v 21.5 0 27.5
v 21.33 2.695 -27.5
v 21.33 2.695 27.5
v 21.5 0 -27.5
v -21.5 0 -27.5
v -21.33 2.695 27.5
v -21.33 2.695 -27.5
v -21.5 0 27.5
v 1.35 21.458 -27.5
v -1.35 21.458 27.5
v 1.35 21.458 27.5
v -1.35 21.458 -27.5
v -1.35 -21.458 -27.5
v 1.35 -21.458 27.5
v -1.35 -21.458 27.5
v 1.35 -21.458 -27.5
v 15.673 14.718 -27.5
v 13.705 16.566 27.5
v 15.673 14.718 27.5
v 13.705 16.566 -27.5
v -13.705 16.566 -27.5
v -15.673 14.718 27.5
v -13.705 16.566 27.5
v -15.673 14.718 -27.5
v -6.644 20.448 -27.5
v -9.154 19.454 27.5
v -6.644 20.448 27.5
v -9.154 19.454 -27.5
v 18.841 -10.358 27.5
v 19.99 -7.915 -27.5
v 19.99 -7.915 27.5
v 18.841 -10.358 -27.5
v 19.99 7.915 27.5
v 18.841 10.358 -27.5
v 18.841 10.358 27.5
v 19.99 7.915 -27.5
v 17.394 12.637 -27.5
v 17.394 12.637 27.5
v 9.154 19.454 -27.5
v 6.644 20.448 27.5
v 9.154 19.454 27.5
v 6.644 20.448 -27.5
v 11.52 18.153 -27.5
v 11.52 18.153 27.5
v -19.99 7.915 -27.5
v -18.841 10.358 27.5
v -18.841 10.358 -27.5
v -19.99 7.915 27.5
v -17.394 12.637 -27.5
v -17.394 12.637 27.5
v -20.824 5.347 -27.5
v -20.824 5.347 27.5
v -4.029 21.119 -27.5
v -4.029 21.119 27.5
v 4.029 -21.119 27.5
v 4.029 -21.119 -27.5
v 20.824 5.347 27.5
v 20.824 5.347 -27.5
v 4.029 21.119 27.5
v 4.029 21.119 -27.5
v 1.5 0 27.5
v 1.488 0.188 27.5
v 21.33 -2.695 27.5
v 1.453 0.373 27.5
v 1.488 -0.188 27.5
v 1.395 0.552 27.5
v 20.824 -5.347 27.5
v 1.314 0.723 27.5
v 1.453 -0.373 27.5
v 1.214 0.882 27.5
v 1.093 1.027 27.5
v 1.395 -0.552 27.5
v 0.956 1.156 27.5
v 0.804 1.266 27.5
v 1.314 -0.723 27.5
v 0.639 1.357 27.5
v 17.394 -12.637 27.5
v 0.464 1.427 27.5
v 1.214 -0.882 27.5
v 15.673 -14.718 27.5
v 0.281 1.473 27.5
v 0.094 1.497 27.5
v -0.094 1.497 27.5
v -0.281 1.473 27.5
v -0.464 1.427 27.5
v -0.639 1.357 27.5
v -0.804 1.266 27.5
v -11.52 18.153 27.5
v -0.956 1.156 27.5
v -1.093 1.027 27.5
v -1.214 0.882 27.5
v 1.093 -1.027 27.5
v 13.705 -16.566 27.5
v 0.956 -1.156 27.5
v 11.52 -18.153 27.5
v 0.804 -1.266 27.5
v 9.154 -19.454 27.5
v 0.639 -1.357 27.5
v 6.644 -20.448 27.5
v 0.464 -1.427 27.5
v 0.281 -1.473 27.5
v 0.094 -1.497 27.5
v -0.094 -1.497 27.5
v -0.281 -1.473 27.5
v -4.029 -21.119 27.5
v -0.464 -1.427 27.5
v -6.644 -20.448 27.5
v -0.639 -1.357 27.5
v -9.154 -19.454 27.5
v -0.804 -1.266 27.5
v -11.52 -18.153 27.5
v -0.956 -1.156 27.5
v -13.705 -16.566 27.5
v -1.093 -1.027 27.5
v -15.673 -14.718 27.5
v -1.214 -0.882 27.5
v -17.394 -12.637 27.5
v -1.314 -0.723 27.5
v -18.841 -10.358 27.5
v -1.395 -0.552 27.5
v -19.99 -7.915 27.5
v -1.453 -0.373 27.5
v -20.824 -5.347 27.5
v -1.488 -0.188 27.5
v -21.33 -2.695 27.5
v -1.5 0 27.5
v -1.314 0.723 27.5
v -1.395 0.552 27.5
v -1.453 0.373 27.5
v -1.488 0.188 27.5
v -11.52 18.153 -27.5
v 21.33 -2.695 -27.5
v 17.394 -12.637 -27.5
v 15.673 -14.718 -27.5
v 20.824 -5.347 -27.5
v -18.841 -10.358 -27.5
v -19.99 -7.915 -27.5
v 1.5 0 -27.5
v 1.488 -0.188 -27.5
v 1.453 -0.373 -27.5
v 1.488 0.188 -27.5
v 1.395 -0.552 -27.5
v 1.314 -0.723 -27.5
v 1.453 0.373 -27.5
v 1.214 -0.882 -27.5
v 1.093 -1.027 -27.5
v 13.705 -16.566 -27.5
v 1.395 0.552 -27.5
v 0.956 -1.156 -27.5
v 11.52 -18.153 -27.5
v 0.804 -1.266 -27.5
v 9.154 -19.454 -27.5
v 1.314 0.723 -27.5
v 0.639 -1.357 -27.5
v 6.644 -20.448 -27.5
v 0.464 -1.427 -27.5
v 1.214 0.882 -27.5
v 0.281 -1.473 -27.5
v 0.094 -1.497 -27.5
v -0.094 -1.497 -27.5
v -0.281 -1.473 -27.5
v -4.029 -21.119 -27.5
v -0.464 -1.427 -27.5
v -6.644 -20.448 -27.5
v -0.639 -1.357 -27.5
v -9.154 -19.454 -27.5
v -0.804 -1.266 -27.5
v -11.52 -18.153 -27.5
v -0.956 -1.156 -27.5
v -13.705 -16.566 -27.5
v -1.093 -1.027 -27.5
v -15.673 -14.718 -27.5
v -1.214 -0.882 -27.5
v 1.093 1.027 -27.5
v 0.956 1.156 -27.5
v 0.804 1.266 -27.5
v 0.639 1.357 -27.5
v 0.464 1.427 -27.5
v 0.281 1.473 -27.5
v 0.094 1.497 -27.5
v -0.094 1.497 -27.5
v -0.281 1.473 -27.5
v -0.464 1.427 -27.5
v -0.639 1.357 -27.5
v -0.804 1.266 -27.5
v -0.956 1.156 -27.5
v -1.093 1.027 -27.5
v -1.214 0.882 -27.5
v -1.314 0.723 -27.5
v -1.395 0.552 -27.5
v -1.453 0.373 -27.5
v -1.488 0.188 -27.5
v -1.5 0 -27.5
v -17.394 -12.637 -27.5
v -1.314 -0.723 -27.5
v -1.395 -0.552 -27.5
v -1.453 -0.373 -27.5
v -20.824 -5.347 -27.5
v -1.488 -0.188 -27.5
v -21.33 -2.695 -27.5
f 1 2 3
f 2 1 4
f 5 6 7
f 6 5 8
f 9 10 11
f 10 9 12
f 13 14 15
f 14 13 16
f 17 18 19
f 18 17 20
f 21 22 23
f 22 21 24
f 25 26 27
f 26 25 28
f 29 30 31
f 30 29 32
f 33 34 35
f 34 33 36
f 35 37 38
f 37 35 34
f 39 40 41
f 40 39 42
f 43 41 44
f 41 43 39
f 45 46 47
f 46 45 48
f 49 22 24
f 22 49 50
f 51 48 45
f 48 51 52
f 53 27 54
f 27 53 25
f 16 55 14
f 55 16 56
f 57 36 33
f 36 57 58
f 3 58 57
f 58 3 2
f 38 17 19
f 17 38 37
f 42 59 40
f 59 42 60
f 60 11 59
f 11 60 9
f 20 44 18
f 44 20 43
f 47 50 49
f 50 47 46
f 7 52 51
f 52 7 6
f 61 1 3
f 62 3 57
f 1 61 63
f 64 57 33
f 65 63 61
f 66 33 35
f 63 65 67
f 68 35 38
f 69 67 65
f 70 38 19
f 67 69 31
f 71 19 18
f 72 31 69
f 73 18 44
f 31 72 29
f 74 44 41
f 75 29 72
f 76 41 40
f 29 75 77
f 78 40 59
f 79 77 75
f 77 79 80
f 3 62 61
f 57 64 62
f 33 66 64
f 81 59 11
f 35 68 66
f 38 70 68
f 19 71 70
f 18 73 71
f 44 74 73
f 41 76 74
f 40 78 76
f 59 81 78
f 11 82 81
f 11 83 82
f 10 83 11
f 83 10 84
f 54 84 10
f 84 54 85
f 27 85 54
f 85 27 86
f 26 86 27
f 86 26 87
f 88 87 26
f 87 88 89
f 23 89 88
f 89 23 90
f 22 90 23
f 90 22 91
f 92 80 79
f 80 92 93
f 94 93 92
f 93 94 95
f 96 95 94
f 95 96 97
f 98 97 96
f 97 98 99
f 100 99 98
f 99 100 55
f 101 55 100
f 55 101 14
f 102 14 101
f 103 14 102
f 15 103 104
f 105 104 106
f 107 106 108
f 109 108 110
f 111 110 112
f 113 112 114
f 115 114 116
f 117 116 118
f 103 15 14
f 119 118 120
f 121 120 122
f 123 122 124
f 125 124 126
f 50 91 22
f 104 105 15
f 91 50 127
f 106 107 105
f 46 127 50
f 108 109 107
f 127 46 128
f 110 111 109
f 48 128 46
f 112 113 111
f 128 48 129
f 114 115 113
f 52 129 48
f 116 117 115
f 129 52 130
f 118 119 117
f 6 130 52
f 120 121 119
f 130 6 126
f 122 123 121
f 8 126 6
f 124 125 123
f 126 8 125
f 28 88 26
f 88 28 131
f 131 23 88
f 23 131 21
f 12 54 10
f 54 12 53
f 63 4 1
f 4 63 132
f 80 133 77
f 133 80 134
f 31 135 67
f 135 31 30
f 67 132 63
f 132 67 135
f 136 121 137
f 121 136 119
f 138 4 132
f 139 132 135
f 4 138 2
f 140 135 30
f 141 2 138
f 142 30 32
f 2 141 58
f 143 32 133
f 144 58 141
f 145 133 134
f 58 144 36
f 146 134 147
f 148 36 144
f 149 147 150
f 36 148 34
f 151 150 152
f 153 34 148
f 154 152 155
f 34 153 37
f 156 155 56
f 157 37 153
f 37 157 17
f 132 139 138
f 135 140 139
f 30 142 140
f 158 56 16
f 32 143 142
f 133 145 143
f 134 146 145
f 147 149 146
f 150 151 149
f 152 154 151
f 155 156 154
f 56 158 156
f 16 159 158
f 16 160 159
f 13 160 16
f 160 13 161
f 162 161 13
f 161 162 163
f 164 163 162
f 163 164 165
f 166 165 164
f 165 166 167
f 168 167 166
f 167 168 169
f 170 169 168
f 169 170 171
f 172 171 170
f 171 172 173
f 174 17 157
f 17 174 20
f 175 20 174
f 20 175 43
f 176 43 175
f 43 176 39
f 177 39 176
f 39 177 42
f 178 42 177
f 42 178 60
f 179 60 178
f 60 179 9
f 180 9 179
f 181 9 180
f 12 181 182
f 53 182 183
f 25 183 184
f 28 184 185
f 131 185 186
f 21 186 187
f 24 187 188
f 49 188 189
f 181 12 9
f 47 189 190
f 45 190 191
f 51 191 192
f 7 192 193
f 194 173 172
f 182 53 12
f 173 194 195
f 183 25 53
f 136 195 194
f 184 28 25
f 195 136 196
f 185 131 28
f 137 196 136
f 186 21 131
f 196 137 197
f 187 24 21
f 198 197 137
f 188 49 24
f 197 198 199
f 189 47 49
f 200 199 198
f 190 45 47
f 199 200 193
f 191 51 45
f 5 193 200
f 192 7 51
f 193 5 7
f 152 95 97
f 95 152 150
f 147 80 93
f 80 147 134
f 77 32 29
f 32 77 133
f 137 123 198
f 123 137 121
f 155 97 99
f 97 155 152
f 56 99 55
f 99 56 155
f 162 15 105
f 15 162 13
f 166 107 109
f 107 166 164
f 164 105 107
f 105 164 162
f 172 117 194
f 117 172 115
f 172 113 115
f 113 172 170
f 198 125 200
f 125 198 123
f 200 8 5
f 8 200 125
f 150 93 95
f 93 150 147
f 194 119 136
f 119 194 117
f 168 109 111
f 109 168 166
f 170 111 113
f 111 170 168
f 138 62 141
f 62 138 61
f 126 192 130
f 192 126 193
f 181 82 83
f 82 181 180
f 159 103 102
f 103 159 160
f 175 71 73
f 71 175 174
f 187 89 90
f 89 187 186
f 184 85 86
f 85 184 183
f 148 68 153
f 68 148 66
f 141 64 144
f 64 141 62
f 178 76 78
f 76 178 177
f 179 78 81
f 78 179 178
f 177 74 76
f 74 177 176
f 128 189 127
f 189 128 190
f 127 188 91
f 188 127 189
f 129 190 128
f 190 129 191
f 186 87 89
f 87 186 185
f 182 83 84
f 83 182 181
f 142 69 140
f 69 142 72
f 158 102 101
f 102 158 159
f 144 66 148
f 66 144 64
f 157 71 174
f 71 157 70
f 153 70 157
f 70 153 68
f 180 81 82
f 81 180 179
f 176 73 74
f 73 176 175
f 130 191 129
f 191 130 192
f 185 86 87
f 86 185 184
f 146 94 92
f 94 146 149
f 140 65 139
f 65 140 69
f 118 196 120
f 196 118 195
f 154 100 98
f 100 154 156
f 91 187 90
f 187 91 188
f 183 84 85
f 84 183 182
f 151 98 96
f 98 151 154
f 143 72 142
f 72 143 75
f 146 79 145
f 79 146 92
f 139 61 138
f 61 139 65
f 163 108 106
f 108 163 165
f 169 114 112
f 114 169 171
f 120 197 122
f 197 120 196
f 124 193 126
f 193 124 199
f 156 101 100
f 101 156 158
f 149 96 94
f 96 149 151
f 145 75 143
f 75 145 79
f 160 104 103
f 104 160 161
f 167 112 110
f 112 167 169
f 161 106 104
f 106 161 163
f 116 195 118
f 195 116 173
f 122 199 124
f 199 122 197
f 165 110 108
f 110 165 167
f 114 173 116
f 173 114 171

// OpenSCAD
$fn = 50;


difference() {
	union() {
		translate(v = [0, 0, -27.5000000000]) {
			cylinder(h = 55, r = 21.5000000000);
		}
	}
	union() {
		translate(v = [0, 0, -100.0000000000]) {
			cylinder(h = 200, r = 1.5000000000);
		}
	}
}
